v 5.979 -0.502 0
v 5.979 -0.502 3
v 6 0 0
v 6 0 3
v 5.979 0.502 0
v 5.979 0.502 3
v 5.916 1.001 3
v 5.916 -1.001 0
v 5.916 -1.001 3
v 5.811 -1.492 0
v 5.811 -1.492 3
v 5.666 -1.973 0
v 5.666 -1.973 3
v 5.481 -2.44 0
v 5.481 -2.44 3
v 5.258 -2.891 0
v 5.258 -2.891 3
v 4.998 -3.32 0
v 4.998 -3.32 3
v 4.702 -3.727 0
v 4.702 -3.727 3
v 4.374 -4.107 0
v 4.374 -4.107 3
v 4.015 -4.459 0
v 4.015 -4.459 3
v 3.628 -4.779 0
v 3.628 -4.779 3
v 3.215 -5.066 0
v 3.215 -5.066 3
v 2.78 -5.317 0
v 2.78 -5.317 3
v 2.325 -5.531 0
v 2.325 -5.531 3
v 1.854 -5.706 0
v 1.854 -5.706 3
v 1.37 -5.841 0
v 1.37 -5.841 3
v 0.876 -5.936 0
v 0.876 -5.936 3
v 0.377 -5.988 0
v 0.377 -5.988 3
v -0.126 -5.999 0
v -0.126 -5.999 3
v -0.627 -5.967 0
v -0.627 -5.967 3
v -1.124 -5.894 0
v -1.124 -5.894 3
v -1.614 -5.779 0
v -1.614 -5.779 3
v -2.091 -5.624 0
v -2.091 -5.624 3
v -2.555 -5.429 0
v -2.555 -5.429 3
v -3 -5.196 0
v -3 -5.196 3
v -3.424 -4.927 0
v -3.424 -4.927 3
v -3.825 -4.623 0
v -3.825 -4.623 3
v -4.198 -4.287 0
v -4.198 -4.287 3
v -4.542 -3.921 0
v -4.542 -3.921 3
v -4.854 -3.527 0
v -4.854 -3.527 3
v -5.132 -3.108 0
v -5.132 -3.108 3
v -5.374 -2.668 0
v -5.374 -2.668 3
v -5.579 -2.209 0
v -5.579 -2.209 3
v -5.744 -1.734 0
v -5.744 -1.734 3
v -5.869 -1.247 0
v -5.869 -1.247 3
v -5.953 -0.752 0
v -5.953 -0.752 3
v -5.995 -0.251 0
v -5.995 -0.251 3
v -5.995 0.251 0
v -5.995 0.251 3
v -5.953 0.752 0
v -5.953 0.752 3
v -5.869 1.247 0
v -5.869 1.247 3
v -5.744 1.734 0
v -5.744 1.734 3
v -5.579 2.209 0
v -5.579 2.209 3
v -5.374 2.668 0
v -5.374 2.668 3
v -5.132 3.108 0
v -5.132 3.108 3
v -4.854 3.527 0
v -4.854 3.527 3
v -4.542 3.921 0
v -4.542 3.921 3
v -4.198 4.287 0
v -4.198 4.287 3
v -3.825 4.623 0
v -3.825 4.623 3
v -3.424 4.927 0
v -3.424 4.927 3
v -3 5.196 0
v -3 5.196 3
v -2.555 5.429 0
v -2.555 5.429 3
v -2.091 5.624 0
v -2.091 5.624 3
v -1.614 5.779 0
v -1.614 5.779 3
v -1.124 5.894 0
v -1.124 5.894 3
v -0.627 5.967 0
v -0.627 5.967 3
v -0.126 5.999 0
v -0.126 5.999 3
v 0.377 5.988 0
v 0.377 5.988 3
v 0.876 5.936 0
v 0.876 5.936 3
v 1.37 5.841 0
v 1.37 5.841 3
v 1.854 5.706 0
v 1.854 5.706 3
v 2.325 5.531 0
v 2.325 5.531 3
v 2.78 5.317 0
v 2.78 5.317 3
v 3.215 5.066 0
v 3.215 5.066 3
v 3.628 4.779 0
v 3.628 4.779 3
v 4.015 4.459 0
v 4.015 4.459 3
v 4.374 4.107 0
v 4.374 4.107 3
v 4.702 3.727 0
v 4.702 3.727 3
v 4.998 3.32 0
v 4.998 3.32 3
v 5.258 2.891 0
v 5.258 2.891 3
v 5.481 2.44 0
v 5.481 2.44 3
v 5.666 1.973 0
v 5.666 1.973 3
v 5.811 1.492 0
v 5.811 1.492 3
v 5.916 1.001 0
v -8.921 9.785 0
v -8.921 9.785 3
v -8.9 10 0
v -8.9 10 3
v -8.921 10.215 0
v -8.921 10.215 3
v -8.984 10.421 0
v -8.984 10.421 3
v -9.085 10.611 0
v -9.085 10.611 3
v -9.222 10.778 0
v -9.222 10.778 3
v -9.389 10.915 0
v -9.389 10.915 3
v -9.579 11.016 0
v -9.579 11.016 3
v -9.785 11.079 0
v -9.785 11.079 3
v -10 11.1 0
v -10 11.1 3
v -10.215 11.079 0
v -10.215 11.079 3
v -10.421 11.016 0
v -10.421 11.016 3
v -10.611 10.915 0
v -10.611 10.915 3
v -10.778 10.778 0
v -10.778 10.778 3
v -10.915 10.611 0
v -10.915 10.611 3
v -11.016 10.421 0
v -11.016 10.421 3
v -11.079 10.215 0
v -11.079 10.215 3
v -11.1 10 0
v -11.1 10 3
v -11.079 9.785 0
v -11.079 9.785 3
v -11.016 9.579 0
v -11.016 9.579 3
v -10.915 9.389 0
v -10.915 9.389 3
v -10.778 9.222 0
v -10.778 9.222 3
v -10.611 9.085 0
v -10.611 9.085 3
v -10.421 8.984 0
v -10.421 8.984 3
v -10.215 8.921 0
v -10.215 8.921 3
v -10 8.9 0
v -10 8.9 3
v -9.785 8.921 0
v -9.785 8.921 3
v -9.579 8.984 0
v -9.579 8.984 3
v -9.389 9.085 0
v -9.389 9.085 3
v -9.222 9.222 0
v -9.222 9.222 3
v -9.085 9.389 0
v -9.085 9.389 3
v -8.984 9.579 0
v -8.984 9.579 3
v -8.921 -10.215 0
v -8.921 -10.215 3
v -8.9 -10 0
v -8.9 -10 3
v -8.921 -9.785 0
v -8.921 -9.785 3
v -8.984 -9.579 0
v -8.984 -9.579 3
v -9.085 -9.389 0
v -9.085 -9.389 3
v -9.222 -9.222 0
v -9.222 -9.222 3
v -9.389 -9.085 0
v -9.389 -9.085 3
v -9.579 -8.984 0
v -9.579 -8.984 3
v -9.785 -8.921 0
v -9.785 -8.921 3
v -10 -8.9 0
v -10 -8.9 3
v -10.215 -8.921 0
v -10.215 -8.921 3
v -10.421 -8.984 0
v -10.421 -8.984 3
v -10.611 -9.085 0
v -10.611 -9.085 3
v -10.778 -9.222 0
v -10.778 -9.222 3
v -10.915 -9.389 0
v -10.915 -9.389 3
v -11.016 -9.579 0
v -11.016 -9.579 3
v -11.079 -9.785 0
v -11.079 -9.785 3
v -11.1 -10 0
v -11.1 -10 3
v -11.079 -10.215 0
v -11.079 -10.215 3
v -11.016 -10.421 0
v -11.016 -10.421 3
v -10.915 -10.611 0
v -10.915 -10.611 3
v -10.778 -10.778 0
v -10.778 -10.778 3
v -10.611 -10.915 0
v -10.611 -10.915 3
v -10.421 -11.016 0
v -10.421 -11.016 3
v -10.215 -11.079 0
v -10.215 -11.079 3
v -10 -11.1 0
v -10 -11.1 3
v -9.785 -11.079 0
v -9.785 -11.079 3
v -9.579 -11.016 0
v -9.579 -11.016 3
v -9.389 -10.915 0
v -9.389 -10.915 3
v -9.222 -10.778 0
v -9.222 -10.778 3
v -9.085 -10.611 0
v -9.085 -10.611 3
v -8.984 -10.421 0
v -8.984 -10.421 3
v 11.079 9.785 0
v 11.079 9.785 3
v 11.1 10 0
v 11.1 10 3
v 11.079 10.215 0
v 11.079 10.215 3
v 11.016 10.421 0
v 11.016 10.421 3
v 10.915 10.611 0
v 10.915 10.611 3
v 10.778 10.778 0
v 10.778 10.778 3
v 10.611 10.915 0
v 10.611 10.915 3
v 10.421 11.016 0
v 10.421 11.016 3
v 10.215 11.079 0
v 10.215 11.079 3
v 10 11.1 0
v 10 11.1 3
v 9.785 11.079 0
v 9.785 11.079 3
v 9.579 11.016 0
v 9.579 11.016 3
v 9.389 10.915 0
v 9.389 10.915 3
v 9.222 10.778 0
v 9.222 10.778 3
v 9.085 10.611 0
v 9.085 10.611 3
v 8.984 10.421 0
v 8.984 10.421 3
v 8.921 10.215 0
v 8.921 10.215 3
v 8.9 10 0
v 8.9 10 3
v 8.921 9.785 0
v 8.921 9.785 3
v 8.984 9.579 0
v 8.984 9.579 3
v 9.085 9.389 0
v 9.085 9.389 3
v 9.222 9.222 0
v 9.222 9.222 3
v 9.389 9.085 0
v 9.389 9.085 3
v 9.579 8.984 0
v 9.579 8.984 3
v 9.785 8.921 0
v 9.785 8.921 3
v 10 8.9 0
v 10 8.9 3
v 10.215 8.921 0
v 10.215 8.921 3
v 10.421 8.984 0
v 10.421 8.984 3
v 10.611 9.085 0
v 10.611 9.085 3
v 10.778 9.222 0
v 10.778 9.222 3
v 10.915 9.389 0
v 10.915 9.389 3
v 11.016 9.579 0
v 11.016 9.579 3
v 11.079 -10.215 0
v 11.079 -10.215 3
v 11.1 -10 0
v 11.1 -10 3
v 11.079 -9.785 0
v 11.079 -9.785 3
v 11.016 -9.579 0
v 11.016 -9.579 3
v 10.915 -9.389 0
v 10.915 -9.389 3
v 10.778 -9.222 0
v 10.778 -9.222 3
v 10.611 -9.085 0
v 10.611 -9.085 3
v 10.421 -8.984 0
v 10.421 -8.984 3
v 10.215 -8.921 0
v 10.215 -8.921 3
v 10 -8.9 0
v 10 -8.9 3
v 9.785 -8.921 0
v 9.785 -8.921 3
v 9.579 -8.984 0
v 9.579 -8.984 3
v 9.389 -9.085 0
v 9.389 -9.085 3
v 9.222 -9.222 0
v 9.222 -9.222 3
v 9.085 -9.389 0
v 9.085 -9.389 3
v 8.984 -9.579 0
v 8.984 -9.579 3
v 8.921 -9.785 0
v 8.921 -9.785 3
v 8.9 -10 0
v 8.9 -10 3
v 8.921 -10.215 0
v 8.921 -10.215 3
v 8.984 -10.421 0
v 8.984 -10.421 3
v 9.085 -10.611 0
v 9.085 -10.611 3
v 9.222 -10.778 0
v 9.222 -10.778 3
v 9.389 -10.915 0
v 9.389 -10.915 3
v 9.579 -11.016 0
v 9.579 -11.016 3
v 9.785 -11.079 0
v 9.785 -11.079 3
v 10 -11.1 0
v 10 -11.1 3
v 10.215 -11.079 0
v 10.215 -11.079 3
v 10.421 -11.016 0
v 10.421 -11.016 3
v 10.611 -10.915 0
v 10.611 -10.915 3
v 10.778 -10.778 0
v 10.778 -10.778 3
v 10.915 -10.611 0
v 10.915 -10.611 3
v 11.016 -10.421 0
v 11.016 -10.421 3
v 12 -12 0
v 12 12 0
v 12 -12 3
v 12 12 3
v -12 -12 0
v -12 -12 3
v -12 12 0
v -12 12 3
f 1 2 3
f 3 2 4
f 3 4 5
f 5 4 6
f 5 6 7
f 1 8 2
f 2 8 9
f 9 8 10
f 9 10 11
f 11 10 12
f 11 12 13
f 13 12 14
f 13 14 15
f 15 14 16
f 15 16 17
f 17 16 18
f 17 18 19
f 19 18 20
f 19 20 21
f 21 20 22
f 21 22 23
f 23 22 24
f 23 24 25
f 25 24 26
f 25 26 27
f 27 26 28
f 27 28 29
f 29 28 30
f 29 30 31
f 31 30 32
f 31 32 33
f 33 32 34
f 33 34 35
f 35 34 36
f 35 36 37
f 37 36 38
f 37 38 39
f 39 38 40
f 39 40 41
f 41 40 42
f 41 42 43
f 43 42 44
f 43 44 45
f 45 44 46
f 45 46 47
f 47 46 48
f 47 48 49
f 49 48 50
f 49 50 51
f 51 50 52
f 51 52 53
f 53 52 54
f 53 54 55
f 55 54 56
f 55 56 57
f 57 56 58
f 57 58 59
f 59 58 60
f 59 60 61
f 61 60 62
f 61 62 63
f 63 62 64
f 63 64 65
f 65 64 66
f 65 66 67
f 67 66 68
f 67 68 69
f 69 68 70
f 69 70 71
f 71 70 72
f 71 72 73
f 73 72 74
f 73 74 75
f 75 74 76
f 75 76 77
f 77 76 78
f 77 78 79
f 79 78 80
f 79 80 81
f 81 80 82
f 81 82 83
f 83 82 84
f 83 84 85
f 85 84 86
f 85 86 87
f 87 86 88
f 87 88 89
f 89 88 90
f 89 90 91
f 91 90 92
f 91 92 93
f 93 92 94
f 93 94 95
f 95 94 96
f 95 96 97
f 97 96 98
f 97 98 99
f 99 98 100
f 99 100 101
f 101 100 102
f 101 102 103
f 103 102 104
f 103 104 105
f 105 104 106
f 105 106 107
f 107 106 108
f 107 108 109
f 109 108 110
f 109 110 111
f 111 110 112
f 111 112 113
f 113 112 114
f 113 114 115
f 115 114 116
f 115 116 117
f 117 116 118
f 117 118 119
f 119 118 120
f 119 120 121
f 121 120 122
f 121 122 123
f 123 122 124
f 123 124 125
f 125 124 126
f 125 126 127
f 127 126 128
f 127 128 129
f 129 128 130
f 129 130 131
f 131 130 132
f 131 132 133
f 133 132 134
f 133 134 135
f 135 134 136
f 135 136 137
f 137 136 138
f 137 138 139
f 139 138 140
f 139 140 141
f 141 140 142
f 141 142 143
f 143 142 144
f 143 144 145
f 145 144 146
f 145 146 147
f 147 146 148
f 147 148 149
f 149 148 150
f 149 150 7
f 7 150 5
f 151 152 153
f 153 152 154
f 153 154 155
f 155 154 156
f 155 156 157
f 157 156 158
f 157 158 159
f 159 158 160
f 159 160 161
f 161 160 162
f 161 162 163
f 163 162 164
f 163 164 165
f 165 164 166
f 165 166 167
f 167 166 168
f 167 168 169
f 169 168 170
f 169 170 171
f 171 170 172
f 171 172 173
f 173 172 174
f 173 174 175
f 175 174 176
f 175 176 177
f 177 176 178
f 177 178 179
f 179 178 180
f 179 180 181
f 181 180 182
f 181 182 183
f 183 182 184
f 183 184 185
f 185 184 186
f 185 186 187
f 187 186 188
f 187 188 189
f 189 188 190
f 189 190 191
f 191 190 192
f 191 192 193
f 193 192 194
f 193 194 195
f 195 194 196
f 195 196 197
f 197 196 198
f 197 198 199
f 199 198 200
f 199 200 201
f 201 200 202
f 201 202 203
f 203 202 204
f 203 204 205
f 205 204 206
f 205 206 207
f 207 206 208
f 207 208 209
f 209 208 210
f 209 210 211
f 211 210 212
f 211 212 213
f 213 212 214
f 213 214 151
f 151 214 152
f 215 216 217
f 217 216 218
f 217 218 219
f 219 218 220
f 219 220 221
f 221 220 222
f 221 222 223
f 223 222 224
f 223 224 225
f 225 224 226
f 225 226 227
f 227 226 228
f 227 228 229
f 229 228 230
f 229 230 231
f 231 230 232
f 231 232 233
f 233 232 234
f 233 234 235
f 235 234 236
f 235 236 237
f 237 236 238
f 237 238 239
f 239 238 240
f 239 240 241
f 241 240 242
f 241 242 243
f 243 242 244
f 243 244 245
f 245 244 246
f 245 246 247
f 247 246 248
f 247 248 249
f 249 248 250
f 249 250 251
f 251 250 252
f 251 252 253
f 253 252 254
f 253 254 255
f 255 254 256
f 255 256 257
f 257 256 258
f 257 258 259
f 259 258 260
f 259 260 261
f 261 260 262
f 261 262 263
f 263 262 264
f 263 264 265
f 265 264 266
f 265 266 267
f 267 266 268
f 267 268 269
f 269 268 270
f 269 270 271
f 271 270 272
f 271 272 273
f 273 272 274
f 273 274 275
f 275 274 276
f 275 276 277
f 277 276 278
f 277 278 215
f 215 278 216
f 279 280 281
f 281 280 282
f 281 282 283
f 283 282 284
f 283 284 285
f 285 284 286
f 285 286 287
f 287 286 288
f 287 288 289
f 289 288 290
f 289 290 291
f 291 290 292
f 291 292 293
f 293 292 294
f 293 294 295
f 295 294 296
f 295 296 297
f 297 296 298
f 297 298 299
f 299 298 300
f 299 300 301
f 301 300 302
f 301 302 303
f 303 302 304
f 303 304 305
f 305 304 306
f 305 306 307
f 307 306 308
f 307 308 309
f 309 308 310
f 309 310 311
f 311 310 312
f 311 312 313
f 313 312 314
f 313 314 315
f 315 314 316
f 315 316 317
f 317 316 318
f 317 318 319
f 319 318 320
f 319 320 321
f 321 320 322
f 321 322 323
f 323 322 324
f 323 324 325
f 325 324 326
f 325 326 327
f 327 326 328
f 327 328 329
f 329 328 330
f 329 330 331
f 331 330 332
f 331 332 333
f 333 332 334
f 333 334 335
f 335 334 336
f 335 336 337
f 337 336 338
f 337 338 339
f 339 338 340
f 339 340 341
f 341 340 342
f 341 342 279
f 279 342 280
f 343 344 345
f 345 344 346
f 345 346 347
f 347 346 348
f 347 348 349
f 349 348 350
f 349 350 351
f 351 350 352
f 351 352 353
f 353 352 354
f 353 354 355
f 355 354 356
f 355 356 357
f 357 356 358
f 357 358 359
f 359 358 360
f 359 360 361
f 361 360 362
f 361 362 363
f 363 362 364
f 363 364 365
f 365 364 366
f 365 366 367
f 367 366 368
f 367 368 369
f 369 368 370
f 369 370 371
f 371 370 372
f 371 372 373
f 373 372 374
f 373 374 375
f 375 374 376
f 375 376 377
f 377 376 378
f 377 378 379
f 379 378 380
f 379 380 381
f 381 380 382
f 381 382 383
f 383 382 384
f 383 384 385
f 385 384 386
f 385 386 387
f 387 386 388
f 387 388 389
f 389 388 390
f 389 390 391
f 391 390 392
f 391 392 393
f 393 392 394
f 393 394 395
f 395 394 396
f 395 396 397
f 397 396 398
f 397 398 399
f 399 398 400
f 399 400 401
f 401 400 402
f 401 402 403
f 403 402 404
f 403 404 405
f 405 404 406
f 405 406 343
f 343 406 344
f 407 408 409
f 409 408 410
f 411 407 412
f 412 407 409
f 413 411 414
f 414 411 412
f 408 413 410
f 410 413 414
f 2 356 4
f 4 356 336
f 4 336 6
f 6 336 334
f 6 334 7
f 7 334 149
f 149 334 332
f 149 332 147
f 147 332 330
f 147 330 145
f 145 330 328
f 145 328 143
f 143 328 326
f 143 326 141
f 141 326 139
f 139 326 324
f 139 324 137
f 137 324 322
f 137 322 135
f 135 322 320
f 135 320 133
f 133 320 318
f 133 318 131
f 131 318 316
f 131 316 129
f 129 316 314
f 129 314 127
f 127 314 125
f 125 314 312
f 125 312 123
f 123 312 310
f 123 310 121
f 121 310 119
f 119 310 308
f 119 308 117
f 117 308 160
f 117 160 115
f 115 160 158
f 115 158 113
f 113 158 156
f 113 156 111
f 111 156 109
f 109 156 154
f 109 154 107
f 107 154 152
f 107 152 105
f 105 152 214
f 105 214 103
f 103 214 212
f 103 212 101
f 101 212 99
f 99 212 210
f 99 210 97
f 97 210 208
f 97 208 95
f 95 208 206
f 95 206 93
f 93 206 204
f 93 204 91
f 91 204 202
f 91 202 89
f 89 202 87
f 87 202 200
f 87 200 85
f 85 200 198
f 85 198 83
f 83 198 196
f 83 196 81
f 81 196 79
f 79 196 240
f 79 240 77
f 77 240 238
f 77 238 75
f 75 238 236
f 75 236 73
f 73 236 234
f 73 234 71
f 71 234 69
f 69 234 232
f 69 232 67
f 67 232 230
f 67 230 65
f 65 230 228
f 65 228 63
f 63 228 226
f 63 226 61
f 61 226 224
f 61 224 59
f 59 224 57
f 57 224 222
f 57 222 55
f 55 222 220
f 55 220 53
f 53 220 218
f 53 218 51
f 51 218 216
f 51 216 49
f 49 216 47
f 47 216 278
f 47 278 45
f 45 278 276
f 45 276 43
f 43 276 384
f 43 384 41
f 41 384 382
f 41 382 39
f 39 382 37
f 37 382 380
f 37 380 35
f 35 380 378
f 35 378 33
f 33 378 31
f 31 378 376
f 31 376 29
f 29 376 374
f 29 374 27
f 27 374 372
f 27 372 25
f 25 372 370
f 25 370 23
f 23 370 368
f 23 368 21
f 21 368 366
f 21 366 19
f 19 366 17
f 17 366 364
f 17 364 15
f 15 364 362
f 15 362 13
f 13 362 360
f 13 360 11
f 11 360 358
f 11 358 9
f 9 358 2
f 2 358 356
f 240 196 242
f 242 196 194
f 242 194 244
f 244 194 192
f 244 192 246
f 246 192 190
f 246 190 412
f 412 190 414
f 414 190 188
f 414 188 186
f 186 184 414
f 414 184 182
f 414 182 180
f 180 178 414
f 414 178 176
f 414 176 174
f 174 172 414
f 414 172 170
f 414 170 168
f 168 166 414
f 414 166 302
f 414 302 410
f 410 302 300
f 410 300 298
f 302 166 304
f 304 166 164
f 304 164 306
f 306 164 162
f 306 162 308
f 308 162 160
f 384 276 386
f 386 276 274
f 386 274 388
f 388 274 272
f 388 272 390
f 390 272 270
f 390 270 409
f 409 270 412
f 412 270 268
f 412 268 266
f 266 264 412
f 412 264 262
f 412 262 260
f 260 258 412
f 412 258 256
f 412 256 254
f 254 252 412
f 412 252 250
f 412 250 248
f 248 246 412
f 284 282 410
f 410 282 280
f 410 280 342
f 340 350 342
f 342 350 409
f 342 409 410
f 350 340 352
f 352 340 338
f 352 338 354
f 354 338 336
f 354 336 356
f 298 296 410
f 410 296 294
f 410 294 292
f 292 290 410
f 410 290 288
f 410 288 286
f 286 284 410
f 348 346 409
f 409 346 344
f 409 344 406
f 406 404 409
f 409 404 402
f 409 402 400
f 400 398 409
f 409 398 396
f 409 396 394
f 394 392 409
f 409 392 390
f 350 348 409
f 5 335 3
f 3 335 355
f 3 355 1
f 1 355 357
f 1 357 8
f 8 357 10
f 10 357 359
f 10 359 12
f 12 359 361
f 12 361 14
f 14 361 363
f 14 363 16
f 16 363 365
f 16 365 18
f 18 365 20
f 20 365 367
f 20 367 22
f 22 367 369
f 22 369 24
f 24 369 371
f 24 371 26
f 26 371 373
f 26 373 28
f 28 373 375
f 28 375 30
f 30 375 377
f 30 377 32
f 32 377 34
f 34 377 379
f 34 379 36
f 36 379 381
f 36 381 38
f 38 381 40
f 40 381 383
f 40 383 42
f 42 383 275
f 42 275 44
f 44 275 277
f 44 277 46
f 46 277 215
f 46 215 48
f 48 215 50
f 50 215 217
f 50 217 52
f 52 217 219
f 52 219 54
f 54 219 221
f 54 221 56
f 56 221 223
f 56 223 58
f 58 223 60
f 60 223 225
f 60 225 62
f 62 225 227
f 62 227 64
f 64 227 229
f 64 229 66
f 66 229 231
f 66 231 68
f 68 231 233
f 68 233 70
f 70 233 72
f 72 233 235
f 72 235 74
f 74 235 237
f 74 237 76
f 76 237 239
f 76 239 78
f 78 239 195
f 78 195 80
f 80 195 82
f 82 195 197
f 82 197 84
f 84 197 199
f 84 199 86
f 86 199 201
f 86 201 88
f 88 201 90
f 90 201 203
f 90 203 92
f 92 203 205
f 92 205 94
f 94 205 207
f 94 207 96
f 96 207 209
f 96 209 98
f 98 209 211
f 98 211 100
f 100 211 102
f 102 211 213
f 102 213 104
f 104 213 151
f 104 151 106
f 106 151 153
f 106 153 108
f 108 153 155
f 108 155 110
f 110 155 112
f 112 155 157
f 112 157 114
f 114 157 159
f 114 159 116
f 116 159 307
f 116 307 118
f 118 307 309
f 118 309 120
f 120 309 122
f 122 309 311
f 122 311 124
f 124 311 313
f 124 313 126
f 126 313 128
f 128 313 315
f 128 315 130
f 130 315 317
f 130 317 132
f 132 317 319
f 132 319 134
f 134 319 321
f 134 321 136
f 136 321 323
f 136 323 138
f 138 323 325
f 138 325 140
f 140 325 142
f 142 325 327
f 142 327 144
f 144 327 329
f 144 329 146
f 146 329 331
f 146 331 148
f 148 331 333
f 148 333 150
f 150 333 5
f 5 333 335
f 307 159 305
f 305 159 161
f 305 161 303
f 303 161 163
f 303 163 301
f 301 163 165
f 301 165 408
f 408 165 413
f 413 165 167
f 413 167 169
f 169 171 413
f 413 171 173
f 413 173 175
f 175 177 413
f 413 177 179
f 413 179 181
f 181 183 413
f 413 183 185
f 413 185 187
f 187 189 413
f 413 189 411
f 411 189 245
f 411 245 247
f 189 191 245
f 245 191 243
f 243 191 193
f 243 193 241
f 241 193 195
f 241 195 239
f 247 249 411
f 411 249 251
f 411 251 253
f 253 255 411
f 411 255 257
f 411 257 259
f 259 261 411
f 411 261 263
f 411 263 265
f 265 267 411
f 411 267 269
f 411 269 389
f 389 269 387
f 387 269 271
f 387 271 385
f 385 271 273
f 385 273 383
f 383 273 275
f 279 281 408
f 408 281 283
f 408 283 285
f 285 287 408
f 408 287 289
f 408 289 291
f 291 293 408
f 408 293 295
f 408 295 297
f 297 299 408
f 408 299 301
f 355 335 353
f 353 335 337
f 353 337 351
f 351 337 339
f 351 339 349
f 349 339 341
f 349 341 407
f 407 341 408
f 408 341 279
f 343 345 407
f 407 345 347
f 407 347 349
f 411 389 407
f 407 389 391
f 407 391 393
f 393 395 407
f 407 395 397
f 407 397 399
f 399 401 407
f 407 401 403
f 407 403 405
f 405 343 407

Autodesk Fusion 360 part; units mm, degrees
sketch "Sketch1" plane through (0, 0, 0) normal (0, 0, 1) x (1, 0, 0)
  line L0 (12, -12) -> (-12, -12)
  line L1 (-12, -12) -> (-12, 12)
  line L2 (-12, 12) -> (12, 12)
  line L3 (12, 12) -> (12, -12)
  line L4 (12, -12) -> (-12, 12) construction
  line L5 (-12, -12) -> (12, 12) construction
  dimension "d1" = 24
  dimension "d2" = 24
extrude "Extrude1" add sketch "Sketch1" along normal blind 3
sketch "Sketch2" plane through (0, 0, 3) normal (0, 0, 1) x (-1, 0, 0)
  line L0 (-12, -12) -> (12, -12)
  line L1 (12, -12) -> (12, 12)
  line L2 (12, 12) -> (-12, 12)
  line L3 (-12, 12) -> (-12, -12)
  circle A0 centre (10, -10) radius 1.1
  circle A1 centre (-10, -10) radius 1.1
  circle A2 centre (10, 10) radius 1.1
  circle A3 centre (-10, 10) radius 1.1
  dimension "d5" = 2.2
  dimension "d6" = 2.2
  dimension "d7" = 2.2
  dimension "d8" = 2.2
  dimension "d9" = 10
  dimension "d10" = 10
  dimension "d11" = 10
  dimension "d12" = 10
  dimension "d13" = 10
  dimension "d14" = 10
  dimension "d15" = 10
  dimension "d16" = 10
extrude "Extrude2" cut sketch "Sketch2" against normal through all contours A0 | A1 | A2 | A3
sketch "Sketch3" plane through (0, 0, 3) normal (0, 0, 1) x (-1, 0, 0)
  circle A0 centre (10, -10) radius 1.1
  circle A1 centre (10, 10) radius 1.1
  circle A2 centre (-10, -10) radius 1.1
  circle A3 centre (-10, 10) radius 1.1
  line L0 (-12, -12) -> (12, -12)
  line L1 (12, -12) -> (12, 12)
  line L2 (12, 12) -> (-12, 12)
  line L3 (-12, 12) -> (-12, -12)
  circle A4 centre (0, 0) radius 6
  dimension "d18" = 12
extrude "Extrude3" cut sketch "Sketch3" against normal blind 6 contours A4
